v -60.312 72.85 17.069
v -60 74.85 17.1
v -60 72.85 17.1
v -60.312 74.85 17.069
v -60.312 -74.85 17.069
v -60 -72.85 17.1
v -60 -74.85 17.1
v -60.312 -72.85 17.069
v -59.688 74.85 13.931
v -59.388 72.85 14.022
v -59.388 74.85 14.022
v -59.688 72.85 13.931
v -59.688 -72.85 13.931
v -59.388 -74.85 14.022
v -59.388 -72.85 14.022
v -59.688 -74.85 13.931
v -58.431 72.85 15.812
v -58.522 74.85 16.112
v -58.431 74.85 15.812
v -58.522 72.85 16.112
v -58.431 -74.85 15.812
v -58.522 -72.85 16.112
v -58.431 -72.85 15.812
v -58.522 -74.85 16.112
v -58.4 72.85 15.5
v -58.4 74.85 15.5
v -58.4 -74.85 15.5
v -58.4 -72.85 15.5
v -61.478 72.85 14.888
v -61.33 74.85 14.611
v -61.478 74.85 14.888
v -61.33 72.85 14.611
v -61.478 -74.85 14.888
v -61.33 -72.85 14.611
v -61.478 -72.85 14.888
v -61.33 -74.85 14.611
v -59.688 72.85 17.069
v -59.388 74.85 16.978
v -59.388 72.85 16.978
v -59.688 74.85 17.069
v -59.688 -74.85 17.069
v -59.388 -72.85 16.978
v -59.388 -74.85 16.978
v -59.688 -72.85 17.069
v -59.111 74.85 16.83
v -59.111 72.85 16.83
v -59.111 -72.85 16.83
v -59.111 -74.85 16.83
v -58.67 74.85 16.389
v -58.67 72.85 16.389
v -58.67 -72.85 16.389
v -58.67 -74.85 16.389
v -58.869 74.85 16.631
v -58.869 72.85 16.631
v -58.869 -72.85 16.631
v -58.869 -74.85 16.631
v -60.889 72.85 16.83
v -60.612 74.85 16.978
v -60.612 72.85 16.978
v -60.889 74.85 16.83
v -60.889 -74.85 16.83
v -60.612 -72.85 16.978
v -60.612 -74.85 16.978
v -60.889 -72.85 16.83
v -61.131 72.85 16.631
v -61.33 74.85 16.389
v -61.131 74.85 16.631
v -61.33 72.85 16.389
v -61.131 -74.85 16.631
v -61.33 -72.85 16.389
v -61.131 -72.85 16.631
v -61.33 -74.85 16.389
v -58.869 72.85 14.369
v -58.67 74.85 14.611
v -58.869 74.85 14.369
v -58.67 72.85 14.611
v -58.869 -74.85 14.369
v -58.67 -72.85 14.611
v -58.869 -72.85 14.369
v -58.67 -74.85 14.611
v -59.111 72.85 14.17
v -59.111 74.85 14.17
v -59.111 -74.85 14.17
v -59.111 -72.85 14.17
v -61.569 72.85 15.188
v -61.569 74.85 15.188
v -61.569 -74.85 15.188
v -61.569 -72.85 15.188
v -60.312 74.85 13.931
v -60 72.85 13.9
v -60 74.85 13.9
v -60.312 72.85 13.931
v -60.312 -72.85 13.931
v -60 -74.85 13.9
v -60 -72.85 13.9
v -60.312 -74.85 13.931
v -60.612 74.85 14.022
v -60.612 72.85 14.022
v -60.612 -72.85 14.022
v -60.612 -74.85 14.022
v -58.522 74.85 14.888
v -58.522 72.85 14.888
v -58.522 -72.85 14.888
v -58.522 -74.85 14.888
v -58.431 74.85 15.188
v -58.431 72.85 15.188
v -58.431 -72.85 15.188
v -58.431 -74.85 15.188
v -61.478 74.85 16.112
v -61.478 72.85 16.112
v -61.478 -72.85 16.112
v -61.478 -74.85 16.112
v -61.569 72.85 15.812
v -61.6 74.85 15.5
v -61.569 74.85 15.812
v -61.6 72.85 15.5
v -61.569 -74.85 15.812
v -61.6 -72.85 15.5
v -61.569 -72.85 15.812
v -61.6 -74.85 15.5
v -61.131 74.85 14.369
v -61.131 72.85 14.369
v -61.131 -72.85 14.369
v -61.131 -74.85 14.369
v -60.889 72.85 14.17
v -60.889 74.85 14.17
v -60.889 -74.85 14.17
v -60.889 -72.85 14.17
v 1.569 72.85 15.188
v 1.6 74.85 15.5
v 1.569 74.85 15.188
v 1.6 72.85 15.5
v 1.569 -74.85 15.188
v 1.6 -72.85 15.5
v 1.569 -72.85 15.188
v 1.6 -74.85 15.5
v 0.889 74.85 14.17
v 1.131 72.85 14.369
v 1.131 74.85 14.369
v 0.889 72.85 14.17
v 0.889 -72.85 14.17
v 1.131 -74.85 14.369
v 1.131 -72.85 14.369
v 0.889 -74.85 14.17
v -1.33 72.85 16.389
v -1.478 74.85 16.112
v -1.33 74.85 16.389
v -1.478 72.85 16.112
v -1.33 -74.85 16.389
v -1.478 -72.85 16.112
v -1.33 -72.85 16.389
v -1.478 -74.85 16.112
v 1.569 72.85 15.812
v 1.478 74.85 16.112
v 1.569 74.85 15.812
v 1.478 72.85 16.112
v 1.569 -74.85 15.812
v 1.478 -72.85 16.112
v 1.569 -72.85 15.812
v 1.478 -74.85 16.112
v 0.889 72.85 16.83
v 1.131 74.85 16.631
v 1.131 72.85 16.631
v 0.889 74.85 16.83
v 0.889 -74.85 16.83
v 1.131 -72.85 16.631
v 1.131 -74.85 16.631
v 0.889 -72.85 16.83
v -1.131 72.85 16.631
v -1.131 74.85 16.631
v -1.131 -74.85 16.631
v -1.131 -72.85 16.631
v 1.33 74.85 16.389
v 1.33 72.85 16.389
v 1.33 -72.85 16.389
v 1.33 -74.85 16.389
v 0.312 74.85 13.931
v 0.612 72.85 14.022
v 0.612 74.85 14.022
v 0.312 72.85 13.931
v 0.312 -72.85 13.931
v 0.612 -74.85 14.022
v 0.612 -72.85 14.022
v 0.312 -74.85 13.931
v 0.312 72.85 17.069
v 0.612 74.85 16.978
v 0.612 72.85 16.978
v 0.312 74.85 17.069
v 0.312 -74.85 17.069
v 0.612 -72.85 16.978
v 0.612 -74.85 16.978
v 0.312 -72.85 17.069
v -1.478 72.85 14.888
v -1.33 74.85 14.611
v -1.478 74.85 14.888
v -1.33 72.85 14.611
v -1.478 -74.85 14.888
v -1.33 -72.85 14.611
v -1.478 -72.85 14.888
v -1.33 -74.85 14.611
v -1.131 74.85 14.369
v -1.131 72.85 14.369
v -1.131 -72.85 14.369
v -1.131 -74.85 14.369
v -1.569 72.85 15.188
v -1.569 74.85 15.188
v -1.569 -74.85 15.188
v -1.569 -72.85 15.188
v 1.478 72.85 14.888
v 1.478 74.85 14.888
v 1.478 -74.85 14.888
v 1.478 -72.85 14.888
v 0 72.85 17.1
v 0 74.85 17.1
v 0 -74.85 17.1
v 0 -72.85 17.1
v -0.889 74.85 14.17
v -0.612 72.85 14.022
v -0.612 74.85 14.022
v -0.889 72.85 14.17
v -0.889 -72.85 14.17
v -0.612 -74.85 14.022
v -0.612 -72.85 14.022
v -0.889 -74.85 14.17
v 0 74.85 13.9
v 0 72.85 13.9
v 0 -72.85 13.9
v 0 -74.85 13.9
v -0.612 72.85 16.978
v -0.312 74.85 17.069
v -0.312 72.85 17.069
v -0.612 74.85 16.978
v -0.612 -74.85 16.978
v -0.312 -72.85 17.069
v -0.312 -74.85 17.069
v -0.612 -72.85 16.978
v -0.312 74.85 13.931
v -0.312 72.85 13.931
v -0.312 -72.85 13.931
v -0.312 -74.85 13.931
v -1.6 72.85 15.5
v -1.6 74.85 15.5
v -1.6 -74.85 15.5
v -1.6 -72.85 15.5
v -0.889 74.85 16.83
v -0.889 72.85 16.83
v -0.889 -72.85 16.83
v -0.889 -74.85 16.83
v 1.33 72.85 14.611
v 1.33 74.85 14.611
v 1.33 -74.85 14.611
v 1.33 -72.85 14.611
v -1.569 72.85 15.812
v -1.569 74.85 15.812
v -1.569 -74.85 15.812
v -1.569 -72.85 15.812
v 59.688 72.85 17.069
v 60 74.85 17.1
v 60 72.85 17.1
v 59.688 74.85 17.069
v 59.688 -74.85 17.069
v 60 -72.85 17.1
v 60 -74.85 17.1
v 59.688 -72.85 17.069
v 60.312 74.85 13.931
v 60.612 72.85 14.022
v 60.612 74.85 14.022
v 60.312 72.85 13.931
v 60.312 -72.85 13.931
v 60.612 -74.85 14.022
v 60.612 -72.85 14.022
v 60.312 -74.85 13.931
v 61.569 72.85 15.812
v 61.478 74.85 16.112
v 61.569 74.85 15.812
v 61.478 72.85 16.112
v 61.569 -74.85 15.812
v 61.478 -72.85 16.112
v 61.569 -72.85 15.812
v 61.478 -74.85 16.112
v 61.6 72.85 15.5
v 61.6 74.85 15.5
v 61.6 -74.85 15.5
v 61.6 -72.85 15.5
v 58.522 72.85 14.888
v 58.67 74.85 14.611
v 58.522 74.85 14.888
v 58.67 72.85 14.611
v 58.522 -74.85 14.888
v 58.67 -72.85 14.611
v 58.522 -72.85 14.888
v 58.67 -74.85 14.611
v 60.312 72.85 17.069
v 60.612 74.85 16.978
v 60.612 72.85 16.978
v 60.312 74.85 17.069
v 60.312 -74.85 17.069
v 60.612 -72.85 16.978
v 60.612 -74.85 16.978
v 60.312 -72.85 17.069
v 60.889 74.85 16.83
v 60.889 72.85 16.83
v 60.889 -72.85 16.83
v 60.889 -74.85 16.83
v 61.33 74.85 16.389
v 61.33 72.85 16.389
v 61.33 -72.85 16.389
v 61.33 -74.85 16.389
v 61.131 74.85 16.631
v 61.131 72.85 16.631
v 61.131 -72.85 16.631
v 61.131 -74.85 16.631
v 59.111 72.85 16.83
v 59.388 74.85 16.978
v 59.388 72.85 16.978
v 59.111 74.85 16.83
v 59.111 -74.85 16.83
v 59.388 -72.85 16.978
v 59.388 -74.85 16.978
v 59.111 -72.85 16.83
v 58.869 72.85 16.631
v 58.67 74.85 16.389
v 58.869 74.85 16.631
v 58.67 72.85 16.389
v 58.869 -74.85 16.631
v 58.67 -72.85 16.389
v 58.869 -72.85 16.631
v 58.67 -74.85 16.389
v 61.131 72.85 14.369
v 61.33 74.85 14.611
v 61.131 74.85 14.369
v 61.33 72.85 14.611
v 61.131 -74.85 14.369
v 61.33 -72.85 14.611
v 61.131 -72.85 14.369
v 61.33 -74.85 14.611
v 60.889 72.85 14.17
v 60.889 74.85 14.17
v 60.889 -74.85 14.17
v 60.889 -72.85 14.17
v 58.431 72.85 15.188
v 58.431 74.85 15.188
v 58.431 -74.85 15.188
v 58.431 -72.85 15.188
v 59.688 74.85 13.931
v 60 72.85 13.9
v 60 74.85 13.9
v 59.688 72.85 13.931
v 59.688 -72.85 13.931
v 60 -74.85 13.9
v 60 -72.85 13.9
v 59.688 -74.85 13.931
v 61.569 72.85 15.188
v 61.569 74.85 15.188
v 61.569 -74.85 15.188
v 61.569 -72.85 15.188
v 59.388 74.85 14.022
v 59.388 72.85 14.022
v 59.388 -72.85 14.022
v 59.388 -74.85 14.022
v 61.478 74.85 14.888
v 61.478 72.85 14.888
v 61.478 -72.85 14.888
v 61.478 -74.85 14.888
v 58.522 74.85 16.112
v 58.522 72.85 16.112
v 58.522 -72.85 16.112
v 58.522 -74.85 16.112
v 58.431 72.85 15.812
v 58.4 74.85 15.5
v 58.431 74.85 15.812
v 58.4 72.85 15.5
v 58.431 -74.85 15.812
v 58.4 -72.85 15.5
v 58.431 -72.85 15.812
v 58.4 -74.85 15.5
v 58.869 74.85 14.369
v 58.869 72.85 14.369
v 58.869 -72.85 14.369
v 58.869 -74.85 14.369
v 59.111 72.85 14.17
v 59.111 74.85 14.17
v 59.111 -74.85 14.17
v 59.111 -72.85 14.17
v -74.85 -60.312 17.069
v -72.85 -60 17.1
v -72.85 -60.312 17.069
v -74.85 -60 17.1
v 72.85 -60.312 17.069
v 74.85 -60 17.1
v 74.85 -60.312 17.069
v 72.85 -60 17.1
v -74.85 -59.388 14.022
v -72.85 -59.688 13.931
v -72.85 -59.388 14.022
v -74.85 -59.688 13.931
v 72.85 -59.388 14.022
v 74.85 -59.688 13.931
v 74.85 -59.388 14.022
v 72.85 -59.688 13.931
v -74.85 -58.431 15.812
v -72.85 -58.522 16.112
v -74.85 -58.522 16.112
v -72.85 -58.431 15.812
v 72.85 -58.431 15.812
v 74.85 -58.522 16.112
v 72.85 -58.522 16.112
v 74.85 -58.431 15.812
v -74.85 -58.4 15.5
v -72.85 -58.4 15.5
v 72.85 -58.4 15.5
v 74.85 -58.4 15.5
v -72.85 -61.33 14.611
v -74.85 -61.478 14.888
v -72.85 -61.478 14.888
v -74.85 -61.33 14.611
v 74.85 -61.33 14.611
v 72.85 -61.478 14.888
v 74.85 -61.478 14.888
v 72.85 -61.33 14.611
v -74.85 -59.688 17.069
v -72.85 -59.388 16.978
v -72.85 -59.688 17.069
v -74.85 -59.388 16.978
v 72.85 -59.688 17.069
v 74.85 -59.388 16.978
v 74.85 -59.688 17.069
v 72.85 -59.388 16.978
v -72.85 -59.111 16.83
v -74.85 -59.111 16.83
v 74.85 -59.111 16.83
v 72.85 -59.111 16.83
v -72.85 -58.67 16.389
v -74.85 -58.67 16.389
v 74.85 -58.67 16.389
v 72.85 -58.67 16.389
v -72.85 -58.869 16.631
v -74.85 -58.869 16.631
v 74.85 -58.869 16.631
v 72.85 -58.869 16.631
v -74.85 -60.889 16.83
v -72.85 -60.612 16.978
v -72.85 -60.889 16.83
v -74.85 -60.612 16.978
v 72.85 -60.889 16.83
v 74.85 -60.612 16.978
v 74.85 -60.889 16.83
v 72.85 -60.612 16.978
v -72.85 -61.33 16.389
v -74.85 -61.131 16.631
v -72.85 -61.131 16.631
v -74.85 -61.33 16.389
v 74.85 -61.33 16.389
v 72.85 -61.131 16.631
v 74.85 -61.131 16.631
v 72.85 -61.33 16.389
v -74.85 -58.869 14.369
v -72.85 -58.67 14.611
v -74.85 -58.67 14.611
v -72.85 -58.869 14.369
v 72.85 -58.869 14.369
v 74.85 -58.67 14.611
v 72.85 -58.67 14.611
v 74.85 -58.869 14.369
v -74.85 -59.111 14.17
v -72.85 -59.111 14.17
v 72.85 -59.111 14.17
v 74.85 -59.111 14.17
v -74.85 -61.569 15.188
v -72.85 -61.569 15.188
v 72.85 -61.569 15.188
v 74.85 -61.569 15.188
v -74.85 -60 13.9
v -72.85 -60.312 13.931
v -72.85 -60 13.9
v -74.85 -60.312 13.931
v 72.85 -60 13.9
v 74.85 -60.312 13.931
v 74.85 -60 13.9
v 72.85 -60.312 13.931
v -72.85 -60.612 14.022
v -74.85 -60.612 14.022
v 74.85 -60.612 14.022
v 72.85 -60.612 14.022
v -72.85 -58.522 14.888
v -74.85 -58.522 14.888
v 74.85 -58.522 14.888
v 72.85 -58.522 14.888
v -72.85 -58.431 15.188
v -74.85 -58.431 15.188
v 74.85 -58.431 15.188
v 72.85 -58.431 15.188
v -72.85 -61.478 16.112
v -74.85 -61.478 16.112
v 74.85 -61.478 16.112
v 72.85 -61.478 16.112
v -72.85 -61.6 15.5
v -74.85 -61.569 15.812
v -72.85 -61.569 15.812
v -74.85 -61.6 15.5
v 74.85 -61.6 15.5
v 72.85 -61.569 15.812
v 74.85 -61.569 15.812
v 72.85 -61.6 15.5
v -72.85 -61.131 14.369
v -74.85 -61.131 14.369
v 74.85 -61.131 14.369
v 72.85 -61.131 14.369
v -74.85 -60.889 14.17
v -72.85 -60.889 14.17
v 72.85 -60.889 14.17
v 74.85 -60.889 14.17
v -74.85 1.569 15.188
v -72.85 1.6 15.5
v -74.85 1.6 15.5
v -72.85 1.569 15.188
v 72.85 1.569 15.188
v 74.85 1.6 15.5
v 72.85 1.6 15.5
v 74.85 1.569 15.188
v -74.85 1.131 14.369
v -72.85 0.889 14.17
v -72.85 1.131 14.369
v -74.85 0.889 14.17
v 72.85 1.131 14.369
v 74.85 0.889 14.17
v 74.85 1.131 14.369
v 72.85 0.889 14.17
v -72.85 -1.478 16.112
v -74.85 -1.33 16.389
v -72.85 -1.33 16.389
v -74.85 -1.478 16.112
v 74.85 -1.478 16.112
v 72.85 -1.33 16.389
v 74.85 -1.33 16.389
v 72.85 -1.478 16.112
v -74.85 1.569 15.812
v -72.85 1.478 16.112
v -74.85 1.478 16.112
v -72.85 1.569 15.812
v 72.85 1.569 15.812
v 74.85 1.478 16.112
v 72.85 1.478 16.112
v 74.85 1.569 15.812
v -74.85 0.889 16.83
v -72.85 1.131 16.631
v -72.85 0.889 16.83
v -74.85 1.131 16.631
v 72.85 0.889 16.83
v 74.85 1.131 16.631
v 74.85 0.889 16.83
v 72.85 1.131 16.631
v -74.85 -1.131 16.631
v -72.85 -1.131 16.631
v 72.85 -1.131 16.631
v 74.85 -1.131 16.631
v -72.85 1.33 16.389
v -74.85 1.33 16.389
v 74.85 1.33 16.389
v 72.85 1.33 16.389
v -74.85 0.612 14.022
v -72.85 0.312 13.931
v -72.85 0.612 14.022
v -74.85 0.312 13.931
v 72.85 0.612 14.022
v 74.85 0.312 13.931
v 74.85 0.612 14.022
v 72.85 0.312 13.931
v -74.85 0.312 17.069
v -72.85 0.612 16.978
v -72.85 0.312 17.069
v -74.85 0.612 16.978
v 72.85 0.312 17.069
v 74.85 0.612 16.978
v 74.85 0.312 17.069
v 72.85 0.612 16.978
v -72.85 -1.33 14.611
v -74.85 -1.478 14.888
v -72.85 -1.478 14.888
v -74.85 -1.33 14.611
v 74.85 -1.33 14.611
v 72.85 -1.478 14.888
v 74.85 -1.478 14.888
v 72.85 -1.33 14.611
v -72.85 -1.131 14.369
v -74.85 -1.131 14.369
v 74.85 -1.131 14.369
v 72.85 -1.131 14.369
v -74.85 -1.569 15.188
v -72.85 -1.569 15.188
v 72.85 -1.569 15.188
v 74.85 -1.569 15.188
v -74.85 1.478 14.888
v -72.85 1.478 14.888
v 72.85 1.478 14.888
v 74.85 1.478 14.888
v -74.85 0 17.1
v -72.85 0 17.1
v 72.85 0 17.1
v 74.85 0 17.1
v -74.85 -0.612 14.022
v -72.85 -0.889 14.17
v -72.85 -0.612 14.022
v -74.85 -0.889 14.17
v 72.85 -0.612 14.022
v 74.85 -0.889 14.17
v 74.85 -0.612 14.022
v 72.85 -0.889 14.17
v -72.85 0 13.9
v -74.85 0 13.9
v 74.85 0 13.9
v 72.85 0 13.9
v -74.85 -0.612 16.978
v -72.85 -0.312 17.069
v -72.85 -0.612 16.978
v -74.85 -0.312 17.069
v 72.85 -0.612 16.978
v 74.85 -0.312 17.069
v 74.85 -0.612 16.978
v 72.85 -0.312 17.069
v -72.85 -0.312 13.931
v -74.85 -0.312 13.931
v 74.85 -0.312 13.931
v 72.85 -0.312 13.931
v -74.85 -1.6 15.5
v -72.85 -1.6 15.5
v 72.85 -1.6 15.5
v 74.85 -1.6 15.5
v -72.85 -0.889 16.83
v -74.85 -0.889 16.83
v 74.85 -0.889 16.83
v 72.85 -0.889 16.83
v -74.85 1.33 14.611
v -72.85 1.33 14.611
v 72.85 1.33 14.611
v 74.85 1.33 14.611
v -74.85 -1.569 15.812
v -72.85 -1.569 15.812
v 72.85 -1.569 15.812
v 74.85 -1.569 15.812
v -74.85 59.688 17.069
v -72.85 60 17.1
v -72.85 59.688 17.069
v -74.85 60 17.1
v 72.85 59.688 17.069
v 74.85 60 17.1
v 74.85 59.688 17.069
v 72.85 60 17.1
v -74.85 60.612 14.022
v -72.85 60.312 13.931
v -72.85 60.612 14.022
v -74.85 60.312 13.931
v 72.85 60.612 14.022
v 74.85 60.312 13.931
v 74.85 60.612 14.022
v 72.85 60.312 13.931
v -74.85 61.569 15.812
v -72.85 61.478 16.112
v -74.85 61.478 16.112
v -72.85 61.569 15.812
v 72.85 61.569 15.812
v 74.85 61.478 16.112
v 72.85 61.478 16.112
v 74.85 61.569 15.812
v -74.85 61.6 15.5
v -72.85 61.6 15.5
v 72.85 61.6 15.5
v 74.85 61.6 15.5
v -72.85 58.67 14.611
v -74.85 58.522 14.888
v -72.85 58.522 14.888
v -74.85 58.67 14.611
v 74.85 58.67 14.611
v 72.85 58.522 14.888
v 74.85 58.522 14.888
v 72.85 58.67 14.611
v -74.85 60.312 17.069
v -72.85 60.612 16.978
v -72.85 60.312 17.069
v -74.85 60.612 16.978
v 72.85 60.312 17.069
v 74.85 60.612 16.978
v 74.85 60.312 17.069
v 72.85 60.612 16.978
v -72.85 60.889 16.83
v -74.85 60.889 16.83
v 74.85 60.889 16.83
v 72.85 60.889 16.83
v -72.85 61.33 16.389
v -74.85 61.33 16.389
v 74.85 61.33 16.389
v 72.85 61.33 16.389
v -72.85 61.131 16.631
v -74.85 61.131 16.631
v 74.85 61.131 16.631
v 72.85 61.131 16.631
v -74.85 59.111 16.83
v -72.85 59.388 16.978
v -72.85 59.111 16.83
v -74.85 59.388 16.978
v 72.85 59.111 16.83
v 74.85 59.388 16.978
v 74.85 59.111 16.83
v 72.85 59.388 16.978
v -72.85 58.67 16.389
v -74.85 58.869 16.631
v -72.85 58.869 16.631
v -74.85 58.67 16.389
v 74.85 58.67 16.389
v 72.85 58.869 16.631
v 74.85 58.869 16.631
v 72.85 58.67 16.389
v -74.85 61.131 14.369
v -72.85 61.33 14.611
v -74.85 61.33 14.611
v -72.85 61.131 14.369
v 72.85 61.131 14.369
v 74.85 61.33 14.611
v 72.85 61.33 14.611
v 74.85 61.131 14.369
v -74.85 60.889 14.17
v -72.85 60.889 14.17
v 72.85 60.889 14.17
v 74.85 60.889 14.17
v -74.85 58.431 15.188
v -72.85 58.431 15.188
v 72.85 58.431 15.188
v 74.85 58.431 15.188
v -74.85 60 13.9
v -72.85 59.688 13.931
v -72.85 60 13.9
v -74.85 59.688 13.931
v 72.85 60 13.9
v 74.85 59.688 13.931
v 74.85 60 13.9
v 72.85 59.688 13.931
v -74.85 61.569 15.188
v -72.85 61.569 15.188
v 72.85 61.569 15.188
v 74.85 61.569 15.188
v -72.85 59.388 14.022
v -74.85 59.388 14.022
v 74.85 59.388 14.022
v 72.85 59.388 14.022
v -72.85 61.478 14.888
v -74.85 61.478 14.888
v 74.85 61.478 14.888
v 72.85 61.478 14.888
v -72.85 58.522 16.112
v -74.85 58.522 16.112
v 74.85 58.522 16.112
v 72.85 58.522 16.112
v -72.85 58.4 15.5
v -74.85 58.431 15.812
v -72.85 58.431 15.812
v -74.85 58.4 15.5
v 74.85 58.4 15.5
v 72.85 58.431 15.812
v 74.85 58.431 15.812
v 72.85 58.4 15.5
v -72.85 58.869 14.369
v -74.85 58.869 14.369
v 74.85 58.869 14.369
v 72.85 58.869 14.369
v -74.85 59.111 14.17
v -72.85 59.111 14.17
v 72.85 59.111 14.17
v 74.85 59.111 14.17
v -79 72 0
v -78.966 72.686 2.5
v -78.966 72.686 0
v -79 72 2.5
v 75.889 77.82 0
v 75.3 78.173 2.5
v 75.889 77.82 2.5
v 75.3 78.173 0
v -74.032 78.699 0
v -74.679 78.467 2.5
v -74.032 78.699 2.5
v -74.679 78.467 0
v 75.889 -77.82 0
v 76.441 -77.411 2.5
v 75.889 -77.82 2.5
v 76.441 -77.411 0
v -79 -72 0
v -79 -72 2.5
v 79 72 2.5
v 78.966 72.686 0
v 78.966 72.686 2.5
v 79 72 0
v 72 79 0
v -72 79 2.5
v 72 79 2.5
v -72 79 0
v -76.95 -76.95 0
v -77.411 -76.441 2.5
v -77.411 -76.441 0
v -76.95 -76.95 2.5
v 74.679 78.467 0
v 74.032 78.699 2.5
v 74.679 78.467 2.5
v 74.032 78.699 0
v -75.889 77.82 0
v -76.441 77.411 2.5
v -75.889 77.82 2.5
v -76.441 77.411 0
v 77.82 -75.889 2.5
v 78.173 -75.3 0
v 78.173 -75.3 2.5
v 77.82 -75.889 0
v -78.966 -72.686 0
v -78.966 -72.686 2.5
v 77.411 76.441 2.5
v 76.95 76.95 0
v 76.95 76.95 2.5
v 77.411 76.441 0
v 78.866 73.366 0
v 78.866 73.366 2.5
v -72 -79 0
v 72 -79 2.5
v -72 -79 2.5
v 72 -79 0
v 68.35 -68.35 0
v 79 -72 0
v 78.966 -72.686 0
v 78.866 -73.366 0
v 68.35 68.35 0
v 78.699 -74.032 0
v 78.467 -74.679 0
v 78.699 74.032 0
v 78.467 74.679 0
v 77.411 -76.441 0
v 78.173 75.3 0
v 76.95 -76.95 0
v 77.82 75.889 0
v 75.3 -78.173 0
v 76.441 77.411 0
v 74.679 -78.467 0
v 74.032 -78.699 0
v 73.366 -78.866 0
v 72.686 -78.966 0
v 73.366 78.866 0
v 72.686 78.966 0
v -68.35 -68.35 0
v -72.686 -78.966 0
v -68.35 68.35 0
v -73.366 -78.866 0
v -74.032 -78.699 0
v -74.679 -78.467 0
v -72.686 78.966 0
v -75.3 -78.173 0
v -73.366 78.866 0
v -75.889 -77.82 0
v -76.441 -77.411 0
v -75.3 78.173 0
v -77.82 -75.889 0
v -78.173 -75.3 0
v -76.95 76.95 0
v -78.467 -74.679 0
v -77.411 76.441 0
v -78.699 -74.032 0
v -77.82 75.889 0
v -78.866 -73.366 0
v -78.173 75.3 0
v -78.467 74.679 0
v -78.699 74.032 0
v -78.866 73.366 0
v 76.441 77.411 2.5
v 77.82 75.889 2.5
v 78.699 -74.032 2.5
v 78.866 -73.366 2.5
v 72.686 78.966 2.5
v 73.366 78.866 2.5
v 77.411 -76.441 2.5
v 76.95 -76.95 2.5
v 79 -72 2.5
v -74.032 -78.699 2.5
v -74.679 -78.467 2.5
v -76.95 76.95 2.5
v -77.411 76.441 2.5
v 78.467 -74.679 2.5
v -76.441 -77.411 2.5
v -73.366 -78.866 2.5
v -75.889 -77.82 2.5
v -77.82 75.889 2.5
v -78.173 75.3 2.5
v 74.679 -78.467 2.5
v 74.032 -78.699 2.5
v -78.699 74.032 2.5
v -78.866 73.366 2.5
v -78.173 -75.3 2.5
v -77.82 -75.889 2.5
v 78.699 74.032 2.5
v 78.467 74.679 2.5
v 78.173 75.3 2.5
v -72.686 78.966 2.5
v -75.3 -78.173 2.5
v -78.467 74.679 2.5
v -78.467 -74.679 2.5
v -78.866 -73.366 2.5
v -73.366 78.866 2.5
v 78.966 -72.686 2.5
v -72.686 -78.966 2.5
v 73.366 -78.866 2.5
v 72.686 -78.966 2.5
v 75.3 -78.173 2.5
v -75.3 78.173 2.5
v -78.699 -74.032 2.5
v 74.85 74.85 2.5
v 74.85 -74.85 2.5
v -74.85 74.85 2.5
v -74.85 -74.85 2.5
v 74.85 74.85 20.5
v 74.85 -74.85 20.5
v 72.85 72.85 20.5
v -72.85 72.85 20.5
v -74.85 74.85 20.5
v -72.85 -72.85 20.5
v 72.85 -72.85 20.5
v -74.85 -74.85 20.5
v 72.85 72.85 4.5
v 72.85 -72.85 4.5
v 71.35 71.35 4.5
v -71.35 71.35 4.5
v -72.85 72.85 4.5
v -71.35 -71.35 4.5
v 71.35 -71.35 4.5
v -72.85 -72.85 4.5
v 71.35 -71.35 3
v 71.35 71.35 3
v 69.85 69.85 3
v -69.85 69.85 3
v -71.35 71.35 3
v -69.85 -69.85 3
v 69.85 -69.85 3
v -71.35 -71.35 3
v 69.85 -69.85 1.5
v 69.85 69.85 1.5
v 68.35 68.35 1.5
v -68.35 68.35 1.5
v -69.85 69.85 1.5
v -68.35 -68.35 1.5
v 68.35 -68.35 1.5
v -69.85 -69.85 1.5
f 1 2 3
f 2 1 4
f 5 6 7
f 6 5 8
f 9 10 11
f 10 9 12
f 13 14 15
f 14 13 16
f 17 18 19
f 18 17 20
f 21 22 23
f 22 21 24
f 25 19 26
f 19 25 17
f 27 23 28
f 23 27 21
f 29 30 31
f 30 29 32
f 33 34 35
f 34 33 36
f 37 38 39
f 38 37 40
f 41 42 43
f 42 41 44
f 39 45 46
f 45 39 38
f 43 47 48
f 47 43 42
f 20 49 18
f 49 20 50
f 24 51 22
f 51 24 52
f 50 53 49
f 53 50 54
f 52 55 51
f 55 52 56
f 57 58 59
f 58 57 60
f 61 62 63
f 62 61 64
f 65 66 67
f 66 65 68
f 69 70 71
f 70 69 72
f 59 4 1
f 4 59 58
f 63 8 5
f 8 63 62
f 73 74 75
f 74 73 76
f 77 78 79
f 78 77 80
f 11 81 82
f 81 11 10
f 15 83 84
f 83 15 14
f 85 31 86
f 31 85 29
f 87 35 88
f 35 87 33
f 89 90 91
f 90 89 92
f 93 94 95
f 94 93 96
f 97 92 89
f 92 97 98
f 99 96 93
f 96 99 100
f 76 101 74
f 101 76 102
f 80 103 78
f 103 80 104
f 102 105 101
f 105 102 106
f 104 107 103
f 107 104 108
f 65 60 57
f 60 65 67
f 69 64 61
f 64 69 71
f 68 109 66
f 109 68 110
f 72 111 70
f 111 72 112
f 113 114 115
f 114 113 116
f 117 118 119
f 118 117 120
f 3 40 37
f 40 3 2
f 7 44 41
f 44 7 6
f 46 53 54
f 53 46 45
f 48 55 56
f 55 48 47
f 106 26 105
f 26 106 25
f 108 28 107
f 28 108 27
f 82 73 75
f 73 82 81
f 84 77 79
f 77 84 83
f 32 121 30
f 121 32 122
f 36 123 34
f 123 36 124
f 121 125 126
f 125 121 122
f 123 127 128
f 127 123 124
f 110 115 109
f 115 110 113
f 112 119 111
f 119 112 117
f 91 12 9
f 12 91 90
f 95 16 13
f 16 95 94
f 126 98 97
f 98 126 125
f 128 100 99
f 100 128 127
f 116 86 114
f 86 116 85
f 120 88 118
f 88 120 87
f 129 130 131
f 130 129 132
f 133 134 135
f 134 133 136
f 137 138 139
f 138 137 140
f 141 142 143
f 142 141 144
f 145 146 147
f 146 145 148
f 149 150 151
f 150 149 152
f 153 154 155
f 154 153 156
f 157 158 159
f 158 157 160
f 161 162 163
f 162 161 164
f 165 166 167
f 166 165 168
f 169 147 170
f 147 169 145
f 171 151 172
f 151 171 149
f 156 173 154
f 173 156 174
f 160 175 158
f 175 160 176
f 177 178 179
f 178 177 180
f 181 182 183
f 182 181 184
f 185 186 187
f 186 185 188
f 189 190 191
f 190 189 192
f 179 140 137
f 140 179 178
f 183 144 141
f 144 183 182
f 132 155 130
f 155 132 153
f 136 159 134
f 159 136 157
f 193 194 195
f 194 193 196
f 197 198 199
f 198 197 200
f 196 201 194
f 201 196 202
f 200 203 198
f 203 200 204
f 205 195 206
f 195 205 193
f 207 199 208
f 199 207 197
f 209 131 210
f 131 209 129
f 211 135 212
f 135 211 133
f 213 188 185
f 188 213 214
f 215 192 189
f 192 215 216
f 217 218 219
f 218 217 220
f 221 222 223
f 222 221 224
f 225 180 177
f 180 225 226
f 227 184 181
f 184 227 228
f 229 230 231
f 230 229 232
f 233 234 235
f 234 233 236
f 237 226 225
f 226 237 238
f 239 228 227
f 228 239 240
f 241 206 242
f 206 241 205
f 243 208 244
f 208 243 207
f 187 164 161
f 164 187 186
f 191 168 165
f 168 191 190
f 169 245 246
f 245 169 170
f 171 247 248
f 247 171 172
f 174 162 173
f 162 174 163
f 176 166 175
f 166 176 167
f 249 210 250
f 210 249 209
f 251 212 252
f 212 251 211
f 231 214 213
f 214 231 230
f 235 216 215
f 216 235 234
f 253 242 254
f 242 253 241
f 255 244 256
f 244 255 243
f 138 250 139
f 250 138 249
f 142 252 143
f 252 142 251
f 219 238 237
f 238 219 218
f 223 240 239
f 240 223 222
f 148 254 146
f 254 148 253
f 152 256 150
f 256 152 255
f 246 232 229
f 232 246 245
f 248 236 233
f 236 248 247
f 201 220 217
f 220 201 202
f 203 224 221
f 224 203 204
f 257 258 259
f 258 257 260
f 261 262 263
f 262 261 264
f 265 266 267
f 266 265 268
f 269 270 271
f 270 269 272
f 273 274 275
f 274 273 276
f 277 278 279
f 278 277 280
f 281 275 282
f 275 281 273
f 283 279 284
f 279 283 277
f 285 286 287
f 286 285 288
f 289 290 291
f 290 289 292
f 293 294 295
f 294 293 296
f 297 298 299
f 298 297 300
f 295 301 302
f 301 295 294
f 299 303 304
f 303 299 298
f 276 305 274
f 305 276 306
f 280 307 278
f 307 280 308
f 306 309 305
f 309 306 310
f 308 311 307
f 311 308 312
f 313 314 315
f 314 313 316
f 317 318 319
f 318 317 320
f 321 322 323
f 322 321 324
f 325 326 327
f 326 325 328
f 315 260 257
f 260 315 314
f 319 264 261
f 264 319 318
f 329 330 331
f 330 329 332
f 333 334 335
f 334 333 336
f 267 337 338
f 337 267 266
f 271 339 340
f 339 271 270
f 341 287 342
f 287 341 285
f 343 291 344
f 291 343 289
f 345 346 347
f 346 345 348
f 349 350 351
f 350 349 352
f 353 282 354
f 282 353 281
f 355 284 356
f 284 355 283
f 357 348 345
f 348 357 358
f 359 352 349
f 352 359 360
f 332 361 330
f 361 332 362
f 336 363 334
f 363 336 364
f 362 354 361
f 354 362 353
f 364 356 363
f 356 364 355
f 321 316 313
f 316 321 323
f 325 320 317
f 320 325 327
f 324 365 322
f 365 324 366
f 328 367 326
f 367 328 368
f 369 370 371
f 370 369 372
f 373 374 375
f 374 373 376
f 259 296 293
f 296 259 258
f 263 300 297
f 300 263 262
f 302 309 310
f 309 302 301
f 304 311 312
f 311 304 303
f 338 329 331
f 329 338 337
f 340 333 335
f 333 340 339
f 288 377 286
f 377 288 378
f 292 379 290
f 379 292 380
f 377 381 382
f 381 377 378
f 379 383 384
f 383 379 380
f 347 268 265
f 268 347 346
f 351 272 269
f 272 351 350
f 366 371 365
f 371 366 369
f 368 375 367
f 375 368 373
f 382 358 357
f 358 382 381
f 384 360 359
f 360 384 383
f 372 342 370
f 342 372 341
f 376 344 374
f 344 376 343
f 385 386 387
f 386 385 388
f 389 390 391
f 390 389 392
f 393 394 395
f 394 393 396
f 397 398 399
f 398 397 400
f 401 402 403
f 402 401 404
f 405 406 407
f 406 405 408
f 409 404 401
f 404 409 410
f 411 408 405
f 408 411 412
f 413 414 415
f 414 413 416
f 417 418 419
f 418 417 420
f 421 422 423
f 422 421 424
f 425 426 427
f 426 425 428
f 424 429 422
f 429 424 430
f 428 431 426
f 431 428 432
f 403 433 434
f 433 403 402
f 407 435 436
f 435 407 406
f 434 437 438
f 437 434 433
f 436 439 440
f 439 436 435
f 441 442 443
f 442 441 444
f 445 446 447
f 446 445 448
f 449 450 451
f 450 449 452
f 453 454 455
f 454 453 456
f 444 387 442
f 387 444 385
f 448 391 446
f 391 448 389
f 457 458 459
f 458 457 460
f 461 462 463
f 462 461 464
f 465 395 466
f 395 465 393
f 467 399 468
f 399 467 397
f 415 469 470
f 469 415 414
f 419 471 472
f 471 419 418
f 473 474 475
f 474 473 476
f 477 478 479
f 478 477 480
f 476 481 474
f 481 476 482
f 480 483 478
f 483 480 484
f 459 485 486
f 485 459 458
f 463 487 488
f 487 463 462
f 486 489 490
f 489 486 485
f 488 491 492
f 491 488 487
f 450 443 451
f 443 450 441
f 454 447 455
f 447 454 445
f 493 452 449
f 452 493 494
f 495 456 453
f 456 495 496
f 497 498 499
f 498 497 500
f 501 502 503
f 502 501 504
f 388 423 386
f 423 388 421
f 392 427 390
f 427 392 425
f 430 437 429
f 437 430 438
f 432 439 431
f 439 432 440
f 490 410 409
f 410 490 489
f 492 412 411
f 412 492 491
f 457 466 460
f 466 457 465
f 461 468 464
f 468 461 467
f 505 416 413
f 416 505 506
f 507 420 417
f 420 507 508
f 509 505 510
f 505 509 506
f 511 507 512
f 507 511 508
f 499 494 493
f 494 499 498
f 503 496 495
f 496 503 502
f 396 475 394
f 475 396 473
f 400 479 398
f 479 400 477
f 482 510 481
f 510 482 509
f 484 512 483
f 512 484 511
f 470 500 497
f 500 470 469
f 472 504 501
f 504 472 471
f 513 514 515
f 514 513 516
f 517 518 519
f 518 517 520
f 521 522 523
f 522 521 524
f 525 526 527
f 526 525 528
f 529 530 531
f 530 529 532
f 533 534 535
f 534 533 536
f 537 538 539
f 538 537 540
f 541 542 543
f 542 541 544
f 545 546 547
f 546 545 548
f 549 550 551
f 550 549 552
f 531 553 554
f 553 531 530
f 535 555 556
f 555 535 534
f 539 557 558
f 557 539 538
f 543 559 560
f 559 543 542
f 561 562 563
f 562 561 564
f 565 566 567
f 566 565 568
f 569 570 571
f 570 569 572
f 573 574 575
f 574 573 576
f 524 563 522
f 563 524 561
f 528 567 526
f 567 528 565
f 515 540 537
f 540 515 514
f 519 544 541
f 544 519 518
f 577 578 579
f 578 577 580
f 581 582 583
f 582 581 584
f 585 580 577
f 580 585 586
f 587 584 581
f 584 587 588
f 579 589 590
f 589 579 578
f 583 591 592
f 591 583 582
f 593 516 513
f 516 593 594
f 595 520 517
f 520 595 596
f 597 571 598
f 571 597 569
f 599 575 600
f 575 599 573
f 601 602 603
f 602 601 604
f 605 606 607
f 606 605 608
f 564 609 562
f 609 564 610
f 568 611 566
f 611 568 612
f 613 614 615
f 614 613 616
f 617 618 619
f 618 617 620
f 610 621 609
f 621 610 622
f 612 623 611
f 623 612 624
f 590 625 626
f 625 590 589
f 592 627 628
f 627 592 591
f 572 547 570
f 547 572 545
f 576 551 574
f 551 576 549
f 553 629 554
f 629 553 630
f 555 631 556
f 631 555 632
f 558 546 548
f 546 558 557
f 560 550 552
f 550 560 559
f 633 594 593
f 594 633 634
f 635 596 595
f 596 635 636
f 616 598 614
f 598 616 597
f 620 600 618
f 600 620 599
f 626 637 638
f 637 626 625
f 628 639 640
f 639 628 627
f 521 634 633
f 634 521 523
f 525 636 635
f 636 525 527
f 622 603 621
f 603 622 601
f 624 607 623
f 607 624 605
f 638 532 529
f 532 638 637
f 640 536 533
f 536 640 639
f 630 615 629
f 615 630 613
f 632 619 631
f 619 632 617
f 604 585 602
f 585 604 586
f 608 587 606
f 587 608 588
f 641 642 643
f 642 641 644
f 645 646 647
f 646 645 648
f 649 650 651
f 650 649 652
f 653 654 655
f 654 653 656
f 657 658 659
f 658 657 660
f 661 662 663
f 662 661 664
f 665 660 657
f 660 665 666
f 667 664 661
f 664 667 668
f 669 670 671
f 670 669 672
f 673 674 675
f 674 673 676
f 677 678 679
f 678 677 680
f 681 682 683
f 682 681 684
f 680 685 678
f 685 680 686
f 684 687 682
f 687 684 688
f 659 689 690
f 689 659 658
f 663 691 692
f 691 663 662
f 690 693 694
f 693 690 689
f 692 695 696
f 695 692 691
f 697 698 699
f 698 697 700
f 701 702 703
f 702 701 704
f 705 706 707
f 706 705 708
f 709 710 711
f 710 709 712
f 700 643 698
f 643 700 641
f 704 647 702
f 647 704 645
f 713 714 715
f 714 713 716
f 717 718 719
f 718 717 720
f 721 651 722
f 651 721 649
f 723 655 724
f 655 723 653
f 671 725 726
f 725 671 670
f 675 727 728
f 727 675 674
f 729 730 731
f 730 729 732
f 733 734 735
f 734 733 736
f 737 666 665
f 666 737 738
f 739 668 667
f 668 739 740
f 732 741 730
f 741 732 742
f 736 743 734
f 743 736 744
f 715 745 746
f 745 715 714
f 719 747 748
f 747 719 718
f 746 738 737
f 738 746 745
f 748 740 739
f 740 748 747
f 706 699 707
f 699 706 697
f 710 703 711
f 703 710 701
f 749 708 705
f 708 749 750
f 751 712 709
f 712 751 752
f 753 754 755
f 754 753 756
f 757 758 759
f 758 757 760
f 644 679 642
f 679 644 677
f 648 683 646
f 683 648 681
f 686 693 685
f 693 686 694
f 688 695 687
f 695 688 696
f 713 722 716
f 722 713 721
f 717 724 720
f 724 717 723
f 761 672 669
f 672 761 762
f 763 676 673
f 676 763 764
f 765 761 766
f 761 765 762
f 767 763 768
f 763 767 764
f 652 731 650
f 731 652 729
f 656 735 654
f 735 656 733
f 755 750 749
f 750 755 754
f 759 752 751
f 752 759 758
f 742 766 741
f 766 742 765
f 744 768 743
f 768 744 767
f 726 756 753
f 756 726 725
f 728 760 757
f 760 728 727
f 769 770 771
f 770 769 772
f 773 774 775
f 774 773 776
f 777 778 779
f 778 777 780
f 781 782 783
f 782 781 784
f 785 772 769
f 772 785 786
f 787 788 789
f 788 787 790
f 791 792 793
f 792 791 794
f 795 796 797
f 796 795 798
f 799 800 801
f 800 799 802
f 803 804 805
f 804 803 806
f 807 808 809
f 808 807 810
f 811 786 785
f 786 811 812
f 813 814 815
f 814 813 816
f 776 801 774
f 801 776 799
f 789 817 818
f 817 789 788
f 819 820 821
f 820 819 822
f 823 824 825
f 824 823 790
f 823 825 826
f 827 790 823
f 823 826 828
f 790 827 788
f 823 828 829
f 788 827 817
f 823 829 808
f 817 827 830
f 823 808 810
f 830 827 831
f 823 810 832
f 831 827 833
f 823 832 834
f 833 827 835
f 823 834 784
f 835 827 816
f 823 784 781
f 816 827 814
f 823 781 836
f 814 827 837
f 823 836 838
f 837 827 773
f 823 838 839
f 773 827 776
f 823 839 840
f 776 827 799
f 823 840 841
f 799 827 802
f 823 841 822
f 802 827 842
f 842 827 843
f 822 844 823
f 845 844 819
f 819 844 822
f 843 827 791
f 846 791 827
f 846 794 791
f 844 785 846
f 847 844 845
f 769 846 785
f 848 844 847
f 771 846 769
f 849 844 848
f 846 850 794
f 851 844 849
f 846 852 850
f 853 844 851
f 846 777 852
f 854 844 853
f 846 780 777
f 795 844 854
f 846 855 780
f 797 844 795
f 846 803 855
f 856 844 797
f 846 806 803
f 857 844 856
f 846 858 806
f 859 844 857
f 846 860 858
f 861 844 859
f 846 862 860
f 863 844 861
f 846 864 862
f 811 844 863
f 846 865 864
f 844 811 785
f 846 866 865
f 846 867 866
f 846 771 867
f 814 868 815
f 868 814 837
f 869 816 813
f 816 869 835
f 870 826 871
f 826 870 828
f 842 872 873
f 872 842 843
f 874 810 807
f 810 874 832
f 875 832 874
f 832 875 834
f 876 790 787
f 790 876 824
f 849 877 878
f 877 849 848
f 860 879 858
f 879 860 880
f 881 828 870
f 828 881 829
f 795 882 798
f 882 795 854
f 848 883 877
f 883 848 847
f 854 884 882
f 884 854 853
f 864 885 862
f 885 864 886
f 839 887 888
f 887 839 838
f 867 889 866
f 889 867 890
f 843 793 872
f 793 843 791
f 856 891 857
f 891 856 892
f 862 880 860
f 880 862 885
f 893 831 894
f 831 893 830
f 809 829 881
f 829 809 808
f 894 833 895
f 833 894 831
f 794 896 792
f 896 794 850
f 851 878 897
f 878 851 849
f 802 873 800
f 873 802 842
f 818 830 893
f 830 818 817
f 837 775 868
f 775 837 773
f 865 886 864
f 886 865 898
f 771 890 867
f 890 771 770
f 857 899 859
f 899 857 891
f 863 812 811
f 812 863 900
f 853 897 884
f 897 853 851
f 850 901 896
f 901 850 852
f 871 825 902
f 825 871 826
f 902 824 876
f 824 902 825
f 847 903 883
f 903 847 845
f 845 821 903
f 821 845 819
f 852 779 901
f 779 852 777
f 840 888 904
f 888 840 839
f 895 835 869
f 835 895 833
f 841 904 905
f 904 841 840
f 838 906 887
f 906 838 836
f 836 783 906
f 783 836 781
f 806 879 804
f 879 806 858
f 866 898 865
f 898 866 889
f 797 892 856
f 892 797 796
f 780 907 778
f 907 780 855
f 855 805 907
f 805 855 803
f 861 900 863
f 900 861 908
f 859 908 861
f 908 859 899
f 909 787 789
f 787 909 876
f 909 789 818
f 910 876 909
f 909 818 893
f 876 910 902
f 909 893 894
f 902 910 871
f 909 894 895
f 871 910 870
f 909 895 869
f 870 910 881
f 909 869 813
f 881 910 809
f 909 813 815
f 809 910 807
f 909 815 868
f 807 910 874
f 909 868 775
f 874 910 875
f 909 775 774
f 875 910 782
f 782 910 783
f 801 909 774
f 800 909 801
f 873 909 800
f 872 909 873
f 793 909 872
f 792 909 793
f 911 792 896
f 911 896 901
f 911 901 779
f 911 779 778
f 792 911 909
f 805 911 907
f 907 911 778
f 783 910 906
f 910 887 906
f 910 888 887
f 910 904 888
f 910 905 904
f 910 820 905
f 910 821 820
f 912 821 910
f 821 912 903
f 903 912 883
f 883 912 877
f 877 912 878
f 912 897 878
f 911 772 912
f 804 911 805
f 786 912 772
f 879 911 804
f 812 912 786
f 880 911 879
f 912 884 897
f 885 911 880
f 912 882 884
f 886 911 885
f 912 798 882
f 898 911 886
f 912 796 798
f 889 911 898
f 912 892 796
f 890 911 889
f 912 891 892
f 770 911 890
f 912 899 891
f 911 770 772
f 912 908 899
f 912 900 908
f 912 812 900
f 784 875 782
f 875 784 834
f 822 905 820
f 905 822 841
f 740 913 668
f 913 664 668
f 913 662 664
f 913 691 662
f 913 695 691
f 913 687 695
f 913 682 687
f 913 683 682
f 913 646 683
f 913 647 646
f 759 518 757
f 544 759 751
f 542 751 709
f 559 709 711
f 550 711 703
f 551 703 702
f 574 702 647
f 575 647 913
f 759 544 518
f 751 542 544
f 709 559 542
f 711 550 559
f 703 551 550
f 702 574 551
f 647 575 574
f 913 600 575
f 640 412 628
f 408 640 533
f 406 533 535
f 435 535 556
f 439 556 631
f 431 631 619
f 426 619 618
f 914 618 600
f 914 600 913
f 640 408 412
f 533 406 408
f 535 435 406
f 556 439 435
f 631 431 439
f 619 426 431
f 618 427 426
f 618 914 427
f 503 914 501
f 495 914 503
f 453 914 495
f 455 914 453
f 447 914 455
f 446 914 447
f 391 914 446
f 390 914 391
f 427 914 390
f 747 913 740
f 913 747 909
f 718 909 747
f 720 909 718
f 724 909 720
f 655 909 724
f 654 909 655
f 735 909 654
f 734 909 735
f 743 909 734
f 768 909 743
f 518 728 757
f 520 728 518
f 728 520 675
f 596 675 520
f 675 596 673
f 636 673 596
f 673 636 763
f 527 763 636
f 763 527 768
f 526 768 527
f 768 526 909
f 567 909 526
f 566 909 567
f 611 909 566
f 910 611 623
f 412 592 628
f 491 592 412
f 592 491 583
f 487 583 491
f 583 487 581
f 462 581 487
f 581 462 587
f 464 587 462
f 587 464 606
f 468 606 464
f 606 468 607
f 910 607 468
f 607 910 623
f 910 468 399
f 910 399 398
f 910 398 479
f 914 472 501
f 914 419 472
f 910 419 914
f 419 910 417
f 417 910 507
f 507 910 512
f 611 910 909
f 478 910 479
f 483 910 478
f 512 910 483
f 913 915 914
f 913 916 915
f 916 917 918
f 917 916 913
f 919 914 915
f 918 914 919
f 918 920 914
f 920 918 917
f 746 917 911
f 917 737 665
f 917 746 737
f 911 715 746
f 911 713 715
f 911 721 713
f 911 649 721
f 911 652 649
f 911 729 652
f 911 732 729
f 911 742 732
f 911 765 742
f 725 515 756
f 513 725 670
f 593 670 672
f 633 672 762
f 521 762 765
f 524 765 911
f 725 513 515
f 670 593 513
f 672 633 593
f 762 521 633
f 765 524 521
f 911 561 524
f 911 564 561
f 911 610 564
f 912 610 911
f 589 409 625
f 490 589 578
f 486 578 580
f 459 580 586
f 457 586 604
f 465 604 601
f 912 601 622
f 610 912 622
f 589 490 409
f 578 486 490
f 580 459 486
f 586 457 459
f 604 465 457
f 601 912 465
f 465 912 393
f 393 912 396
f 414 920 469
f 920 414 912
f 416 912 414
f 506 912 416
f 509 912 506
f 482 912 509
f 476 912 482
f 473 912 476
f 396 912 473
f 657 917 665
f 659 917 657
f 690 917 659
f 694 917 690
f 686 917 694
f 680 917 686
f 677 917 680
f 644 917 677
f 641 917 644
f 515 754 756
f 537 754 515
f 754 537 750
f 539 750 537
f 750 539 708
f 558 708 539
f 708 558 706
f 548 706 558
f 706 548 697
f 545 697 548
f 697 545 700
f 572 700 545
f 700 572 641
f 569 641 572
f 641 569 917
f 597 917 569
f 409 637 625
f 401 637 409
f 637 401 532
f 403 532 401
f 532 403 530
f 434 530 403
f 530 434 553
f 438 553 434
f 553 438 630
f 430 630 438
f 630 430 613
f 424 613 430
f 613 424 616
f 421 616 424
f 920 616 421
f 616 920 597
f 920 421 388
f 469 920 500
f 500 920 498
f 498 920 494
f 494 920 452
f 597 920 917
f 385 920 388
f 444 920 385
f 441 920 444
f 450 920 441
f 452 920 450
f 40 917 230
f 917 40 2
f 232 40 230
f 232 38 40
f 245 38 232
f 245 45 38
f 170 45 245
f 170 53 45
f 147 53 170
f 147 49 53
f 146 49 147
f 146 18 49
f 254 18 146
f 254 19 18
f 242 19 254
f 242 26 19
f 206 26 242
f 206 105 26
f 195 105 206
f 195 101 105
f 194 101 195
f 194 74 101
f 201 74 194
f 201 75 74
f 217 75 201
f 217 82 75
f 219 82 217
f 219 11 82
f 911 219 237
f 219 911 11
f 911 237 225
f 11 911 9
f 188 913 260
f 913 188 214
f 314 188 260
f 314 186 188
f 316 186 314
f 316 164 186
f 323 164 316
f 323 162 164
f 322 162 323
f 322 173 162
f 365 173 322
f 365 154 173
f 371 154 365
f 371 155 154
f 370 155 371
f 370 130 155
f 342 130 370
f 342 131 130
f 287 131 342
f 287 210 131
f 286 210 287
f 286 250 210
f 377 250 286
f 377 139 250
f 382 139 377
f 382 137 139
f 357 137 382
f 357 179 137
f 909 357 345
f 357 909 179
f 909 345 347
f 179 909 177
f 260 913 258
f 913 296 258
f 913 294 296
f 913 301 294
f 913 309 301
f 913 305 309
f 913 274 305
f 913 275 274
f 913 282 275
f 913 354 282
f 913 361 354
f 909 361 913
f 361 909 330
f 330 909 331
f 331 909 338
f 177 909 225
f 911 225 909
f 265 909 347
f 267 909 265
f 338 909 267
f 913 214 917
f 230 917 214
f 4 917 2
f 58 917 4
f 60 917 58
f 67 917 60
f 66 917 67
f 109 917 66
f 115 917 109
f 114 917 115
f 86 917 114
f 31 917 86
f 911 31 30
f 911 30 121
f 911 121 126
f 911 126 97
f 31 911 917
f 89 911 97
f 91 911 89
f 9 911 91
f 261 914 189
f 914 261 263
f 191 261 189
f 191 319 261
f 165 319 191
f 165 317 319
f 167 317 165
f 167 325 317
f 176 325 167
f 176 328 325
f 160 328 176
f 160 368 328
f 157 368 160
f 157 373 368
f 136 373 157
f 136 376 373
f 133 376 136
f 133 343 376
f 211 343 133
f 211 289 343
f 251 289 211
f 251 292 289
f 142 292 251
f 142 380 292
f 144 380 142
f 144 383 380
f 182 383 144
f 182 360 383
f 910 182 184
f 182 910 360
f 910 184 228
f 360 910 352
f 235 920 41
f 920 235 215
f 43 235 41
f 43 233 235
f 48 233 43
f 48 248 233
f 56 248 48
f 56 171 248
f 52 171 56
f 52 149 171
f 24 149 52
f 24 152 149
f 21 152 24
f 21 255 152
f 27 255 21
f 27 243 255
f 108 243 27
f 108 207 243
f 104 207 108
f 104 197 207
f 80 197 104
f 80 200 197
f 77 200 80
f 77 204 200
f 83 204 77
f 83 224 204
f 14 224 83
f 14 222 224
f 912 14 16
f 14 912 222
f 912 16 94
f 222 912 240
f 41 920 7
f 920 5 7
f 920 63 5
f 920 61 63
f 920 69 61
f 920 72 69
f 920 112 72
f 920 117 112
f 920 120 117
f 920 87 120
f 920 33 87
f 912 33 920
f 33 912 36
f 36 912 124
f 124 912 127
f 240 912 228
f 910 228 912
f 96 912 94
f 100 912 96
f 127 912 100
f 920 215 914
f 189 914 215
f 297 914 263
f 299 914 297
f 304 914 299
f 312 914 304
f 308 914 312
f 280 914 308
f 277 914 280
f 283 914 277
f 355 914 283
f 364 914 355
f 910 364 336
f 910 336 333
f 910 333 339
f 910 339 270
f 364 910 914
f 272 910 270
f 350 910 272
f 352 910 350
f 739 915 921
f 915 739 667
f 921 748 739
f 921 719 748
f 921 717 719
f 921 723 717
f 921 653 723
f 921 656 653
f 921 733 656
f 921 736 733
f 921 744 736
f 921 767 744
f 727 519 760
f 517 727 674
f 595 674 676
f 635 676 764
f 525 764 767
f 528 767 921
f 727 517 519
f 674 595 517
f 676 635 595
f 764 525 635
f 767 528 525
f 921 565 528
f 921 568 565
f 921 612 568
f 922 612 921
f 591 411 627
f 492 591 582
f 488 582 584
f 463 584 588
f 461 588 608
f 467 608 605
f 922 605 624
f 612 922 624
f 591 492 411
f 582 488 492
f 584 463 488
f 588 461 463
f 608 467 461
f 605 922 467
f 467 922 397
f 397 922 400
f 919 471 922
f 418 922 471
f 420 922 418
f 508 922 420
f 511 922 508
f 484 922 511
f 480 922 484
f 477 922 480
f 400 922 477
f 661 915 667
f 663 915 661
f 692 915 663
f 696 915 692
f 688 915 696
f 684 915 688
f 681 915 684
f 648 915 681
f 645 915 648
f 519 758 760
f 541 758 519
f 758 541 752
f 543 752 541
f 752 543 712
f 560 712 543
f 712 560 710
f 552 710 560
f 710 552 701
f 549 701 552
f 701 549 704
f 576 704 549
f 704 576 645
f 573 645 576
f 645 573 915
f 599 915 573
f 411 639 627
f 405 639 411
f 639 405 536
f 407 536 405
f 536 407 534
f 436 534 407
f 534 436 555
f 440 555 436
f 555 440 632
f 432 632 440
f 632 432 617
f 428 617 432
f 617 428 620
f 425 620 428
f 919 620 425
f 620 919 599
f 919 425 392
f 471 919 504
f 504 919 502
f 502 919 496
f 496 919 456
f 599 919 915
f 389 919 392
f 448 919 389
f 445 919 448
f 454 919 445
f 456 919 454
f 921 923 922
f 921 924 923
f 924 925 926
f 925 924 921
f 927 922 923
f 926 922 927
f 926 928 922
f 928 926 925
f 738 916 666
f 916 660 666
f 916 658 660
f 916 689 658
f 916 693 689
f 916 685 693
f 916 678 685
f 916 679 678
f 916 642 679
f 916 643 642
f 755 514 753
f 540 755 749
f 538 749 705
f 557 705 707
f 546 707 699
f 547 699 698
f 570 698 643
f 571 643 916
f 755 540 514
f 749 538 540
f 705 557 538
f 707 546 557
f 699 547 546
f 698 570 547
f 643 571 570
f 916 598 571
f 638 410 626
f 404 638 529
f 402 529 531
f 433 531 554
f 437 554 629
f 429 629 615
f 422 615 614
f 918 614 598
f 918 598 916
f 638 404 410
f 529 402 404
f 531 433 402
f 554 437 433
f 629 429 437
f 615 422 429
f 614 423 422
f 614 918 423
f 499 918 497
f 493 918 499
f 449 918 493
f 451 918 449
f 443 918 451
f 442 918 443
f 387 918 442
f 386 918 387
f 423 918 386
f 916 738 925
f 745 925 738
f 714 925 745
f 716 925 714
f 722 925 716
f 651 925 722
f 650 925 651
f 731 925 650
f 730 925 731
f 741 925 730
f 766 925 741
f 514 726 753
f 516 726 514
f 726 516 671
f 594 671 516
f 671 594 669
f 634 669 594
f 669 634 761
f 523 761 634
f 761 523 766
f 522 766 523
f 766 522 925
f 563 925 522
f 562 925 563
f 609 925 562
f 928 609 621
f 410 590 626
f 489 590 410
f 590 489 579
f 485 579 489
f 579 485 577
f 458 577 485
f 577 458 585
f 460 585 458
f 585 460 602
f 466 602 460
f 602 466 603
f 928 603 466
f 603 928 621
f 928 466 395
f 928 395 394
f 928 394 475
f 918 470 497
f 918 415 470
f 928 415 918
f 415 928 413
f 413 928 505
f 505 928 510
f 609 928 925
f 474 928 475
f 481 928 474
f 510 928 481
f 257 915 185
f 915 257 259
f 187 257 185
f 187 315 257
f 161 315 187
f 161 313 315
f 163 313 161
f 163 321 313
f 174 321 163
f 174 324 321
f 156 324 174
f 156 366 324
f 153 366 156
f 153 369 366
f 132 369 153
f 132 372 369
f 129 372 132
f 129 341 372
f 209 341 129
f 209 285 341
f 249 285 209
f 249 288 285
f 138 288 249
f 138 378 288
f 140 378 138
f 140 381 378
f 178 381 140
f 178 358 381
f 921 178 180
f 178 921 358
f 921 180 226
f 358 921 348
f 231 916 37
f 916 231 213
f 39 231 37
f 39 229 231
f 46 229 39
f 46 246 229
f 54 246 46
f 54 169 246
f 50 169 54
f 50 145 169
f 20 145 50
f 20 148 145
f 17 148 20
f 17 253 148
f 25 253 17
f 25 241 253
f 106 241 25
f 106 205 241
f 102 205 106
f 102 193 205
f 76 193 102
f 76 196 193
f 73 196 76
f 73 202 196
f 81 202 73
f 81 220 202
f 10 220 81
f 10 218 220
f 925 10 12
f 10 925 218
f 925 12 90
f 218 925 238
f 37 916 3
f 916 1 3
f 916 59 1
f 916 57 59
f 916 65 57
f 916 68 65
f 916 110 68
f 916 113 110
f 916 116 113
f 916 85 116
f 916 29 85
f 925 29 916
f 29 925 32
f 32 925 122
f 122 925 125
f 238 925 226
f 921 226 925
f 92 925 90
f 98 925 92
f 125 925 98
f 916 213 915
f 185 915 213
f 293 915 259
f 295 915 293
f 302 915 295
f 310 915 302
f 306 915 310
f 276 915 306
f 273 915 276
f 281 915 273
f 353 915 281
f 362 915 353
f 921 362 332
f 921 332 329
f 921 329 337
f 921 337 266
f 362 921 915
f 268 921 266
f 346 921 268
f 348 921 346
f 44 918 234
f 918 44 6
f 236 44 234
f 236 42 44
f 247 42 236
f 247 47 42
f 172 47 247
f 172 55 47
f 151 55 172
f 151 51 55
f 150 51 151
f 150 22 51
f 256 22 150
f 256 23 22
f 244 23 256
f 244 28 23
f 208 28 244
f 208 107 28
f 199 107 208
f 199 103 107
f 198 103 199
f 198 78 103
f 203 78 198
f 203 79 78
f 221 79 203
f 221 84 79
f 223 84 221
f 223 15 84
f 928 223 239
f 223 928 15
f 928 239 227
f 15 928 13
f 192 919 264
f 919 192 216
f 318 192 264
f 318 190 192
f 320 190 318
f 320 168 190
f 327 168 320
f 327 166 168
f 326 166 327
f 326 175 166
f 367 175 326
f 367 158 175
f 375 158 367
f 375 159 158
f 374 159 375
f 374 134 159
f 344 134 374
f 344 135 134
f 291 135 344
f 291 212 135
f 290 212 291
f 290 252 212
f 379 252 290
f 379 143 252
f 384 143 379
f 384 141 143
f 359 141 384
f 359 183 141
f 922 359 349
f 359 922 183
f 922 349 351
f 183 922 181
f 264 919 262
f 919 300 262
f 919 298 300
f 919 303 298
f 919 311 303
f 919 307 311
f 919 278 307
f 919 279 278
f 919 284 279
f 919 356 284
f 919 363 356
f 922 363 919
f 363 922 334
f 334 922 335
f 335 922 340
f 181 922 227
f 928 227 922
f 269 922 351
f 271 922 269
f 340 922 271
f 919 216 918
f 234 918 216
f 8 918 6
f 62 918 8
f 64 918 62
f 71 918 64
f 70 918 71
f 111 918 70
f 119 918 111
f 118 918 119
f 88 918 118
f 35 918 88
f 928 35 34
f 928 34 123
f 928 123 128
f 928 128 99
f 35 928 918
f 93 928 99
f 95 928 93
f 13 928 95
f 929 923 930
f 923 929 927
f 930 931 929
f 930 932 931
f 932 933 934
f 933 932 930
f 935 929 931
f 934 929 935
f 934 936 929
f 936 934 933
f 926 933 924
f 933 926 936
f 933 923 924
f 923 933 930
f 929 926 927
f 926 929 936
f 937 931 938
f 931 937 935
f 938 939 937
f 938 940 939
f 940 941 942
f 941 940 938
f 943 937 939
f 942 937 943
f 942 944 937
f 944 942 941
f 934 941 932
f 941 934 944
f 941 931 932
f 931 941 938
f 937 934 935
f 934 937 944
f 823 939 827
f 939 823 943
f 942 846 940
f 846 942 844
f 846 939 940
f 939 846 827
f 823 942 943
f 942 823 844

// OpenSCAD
TT=2.5;

difference() {
    union() {
        cube_center([158,158,TT], r=7);
        cube_center([149.7,149.7,TT+18]);
    }
    
    translate([0,0,4.5])
    cube_center([149.7-4,149.7-4,50]);
    
    translate([0,0,3])
    cube_center([149.7-4-3,149.7-4-3,50]);
    
    translate([0,0,1.5])
    cube_center([149.7-4-3-3,149.7-4-3-3,50]);
    
    cube_center([149.7-4-9,149.7-4-9,50]);
    
    
    for(t=[0,1])
    rotate([0,0,t*90])
    for(s=[-1:1])
    translate([s*60,0,TT+18-5])
    rotate([90,0,0,])
    cylinder(d=3.2,h=200,$fn=32,center=true);   
}

module cube_center(dims,r=0) {
    if(r==0) {
        translate([-dims[0]/2, -dims[1]/2, 0])
        cube(dims);
    } else {
        
        minkowski() {
            translate([-dims[0]/2+r, -dims[1]/2+r, 0])
            cube([dims[0]-2*r,dims[1]-2*r,dims[2]]);
            cylinder(r=r,h=0.00001,$fn=64);
        }
    }
}
